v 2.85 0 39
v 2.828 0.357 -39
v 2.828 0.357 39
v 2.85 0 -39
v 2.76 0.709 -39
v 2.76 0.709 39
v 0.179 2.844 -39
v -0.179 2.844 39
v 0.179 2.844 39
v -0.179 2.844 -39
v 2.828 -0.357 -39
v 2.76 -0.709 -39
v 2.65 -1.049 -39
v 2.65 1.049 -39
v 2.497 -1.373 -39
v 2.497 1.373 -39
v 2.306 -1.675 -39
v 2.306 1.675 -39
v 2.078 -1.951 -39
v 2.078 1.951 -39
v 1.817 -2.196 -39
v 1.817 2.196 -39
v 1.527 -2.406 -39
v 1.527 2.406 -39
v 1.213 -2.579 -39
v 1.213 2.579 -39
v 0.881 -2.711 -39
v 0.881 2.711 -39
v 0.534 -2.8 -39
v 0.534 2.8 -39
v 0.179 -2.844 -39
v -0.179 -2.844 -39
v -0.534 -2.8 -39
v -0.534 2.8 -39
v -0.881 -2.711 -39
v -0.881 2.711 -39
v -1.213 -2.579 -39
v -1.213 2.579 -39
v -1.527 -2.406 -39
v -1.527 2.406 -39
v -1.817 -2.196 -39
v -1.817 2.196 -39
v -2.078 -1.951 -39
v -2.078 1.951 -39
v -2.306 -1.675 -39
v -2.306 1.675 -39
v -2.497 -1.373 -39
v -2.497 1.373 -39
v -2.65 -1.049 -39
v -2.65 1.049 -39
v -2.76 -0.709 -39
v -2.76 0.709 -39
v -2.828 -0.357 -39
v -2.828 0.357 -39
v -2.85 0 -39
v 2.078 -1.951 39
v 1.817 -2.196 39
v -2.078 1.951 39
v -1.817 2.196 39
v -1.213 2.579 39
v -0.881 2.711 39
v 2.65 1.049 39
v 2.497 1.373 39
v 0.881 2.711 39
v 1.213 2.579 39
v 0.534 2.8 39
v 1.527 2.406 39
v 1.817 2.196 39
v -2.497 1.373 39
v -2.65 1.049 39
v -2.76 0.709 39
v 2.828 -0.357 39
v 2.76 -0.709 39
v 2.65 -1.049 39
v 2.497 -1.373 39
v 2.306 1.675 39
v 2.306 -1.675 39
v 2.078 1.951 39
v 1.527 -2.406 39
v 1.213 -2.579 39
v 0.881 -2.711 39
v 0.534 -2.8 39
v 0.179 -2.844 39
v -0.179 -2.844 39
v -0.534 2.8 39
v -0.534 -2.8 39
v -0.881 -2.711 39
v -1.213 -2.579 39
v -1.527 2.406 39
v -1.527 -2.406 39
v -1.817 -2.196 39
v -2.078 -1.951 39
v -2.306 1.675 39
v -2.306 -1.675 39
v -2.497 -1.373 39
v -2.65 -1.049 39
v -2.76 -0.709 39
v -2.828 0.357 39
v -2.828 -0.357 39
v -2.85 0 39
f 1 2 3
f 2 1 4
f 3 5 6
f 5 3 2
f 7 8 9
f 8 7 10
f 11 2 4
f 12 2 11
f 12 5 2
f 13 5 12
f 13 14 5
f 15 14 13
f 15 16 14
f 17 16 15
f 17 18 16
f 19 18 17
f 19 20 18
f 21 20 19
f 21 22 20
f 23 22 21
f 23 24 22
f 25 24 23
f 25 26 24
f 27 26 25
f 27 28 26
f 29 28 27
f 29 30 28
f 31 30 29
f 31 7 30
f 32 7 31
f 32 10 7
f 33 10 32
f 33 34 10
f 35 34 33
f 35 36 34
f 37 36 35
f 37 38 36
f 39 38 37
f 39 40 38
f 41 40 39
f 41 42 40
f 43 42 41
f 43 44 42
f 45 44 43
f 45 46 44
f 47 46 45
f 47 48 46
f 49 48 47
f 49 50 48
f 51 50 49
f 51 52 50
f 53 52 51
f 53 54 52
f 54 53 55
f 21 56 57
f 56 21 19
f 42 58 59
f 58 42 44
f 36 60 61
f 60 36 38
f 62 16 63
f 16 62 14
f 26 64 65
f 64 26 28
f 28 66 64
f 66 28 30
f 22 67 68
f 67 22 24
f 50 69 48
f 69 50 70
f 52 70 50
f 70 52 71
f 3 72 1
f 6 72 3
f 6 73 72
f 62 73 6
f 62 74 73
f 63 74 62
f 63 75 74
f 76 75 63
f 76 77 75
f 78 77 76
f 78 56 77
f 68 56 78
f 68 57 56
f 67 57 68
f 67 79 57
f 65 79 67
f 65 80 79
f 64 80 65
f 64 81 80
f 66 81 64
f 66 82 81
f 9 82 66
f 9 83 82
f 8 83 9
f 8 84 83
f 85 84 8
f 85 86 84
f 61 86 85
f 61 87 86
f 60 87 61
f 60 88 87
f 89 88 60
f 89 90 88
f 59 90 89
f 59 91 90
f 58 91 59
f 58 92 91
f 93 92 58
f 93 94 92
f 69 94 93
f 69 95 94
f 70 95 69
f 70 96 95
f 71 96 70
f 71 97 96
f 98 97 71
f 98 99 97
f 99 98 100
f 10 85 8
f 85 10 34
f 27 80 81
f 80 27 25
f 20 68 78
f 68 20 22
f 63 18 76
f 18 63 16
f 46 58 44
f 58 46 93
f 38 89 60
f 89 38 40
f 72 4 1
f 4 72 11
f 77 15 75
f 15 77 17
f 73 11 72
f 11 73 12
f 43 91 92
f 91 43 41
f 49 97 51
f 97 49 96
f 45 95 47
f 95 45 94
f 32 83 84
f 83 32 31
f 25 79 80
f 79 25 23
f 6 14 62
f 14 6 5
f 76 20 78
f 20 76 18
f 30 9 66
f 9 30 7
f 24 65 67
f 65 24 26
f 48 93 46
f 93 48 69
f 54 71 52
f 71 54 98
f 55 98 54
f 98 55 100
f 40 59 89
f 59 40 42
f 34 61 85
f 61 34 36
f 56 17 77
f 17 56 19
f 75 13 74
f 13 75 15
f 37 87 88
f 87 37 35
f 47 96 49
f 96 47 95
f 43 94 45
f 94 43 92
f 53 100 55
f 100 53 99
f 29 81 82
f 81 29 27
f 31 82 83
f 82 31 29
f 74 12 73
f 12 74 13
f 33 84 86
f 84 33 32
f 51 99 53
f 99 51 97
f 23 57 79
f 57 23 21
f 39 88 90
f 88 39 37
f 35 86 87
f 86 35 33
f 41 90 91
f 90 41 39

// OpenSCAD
$fn = 50;


difference() {
	union() {
		translate(v = [0, 0, -39.0000000000]) {
			cylinder(h = 78, r = 2.8500000000);
		}
	}
	union() {
		translate(v = [0, 0, -100.0000000000]) {
			cylinder(h = 200, r = 0);
		}
	}
}
